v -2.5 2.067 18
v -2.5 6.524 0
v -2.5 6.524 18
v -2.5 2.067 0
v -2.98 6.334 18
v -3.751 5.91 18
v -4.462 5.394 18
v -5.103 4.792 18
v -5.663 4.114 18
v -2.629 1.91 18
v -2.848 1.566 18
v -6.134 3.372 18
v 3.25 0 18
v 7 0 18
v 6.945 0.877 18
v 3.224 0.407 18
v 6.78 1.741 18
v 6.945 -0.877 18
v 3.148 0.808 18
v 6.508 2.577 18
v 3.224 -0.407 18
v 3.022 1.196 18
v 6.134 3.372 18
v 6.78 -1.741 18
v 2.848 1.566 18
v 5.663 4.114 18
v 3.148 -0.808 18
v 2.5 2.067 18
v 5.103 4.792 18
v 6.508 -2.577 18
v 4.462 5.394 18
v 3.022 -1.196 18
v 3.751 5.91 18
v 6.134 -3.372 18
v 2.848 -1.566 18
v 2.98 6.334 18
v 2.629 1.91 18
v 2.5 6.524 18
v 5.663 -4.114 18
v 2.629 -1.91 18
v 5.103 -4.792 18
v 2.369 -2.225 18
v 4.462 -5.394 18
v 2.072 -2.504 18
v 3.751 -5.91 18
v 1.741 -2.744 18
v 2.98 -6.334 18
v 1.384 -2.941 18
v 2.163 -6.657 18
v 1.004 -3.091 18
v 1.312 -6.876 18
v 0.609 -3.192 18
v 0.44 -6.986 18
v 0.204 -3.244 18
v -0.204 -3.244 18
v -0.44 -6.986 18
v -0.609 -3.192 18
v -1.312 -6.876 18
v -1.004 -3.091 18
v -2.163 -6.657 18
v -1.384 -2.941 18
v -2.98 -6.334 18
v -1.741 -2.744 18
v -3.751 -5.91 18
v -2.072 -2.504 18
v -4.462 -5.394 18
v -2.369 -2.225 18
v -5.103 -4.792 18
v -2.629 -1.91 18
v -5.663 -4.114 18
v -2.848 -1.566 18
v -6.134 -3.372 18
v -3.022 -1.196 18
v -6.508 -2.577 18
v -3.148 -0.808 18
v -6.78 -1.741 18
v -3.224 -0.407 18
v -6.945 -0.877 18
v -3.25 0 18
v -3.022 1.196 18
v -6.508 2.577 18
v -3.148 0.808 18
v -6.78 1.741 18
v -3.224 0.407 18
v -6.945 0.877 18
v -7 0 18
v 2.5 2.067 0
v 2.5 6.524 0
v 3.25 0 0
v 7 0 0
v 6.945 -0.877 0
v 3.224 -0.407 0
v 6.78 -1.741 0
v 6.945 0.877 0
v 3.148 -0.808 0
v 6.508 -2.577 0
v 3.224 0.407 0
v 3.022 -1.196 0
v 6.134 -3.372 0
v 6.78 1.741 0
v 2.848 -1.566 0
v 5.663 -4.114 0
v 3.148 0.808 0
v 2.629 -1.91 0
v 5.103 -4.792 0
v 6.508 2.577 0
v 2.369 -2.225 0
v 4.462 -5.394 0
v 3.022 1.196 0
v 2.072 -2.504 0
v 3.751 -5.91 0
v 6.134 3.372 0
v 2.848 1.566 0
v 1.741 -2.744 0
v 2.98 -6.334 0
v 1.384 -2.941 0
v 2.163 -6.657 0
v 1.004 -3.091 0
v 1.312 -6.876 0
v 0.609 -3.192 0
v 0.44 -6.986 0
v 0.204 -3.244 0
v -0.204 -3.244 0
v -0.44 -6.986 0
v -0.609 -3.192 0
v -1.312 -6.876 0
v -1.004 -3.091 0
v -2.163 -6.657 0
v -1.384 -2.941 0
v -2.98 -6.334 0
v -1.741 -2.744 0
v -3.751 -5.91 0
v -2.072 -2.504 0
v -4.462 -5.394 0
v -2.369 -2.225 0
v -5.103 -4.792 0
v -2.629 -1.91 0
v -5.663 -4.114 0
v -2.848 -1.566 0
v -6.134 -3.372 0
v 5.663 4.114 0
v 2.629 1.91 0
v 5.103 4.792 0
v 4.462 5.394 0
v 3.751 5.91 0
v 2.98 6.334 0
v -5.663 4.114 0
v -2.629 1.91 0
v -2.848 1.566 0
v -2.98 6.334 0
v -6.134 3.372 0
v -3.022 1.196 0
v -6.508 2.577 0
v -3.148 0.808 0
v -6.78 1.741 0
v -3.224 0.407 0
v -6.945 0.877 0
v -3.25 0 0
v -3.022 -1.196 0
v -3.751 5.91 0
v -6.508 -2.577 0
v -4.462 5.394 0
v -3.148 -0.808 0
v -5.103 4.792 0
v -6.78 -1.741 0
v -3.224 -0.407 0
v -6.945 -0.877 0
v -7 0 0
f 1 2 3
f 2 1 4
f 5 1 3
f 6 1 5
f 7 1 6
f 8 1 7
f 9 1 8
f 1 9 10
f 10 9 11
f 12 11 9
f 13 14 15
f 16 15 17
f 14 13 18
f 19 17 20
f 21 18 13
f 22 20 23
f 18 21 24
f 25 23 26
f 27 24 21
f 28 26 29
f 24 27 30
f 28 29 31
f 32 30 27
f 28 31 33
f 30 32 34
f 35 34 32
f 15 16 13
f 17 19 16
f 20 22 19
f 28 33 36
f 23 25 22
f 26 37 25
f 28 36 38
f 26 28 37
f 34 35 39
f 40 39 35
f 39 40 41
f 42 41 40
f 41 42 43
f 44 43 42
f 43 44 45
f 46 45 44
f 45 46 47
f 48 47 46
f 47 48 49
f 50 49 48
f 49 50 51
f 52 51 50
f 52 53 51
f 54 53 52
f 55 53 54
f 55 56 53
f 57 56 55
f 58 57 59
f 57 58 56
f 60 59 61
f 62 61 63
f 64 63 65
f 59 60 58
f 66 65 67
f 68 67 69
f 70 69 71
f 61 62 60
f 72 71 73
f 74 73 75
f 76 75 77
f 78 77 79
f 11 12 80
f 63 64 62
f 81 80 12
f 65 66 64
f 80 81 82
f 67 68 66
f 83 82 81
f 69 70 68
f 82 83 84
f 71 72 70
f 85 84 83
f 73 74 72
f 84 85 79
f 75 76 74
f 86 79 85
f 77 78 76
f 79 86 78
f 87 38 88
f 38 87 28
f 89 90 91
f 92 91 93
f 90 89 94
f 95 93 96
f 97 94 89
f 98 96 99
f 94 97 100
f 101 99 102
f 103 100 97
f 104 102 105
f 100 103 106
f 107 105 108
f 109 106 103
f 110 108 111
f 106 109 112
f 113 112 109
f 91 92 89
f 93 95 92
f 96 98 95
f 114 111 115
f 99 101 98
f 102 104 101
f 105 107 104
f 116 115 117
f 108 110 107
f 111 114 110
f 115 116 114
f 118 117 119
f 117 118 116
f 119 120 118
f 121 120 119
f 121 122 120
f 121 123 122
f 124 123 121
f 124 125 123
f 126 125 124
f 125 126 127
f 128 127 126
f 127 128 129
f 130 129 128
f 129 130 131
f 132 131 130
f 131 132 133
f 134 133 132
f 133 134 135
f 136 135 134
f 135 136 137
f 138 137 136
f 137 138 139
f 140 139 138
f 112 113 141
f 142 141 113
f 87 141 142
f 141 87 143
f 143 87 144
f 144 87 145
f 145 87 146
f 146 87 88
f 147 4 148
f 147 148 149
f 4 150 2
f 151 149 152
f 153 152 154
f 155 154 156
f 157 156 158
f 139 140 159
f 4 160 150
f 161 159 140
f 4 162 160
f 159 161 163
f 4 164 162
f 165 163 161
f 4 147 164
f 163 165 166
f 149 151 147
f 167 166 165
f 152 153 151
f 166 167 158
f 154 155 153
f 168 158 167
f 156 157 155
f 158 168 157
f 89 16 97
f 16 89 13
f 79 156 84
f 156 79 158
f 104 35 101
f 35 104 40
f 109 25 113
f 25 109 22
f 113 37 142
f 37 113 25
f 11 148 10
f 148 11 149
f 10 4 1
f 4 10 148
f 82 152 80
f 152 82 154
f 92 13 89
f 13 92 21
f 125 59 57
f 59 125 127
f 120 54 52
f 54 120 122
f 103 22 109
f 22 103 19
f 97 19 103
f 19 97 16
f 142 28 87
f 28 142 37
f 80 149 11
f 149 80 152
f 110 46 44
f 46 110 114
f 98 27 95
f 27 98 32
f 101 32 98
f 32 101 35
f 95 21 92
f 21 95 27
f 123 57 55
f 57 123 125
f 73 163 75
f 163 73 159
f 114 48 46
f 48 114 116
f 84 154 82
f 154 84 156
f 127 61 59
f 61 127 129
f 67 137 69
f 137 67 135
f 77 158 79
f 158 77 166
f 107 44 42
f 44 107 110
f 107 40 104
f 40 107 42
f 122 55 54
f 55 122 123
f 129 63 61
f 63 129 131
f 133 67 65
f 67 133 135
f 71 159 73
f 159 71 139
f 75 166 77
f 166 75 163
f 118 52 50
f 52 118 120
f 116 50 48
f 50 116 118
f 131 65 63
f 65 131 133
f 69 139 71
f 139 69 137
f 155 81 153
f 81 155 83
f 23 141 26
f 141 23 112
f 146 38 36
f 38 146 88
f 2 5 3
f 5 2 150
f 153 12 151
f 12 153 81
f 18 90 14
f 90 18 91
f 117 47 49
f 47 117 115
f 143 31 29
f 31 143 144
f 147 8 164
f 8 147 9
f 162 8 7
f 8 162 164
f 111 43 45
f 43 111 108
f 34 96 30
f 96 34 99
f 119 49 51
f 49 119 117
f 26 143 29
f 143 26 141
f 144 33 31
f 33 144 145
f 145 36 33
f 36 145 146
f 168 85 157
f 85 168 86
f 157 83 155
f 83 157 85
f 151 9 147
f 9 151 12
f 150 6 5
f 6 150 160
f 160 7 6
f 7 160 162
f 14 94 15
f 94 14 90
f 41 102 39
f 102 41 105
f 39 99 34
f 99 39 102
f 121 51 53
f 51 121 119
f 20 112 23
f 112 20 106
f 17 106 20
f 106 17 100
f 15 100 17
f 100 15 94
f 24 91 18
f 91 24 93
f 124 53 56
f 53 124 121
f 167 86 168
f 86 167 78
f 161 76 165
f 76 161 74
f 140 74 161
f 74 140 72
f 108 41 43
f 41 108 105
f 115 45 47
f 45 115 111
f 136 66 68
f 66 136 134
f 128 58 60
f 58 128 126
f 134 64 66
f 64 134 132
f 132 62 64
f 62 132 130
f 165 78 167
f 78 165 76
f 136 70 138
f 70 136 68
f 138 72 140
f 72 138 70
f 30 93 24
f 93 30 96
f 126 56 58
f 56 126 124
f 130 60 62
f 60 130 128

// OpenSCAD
$fn = 50;


difference() {
	union() {
		cylinder(h = 18, r = 7.0000000000);
	}
	union() {
		#translate(v = [-2.5000000000, 0.0000000000, 0]) {
			cube(size = [5, 20, 18]);
		}
		translate(v = [0, 0, -100]) {
			cylinder(h = 200, r = 3.2500000000);
		}
		translate(v = [0, 0, -100]) {
			cylinder(h = 200, r = 1.8000000000);
		}
	}
}
